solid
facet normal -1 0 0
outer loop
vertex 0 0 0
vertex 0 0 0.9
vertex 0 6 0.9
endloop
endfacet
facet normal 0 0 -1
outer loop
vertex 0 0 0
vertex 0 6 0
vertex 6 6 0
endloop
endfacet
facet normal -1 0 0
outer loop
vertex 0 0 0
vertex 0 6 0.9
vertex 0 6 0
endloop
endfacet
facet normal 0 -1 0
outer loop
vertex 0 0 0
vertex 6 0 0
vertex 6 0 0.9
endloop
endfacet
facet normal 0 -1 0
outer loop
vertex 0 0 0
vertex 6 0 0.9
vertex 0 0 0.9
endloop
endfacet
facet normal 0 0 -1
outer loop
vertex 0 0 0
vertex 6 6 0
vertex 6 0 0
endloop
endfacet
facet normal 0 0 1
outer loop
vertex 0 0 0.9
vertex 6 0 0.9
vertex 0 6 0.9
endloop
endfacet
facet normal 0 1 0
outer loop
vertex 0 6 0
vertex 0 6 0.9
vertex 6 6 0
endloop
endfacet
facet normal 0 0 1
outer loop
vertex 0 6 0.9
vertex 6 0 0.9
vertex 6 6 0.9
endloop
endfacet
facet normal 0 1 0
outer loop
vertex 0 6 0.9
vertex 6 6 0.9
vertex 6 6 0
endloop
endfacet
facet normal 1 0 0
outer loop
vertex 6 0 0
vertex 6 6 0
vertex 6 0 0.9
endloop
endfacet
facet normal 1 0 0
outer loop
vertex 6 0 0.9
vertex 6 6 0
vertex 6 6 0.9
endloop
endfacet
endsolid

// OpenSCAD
/* Warning, this is a very basic generator with a lot of approximation 
input data : [VQFN, SEB, 6x6x0.9mm, 48, , A, C04-21407A]
generated by com.zoubworld.electronics.cad.model3d.Basic
Date : Sun Feb 15 10:50:49 CET 2026
*/

//body
color("black")
translate([0,0,0])
cube([6.0,6.0,0.9], center=false);
